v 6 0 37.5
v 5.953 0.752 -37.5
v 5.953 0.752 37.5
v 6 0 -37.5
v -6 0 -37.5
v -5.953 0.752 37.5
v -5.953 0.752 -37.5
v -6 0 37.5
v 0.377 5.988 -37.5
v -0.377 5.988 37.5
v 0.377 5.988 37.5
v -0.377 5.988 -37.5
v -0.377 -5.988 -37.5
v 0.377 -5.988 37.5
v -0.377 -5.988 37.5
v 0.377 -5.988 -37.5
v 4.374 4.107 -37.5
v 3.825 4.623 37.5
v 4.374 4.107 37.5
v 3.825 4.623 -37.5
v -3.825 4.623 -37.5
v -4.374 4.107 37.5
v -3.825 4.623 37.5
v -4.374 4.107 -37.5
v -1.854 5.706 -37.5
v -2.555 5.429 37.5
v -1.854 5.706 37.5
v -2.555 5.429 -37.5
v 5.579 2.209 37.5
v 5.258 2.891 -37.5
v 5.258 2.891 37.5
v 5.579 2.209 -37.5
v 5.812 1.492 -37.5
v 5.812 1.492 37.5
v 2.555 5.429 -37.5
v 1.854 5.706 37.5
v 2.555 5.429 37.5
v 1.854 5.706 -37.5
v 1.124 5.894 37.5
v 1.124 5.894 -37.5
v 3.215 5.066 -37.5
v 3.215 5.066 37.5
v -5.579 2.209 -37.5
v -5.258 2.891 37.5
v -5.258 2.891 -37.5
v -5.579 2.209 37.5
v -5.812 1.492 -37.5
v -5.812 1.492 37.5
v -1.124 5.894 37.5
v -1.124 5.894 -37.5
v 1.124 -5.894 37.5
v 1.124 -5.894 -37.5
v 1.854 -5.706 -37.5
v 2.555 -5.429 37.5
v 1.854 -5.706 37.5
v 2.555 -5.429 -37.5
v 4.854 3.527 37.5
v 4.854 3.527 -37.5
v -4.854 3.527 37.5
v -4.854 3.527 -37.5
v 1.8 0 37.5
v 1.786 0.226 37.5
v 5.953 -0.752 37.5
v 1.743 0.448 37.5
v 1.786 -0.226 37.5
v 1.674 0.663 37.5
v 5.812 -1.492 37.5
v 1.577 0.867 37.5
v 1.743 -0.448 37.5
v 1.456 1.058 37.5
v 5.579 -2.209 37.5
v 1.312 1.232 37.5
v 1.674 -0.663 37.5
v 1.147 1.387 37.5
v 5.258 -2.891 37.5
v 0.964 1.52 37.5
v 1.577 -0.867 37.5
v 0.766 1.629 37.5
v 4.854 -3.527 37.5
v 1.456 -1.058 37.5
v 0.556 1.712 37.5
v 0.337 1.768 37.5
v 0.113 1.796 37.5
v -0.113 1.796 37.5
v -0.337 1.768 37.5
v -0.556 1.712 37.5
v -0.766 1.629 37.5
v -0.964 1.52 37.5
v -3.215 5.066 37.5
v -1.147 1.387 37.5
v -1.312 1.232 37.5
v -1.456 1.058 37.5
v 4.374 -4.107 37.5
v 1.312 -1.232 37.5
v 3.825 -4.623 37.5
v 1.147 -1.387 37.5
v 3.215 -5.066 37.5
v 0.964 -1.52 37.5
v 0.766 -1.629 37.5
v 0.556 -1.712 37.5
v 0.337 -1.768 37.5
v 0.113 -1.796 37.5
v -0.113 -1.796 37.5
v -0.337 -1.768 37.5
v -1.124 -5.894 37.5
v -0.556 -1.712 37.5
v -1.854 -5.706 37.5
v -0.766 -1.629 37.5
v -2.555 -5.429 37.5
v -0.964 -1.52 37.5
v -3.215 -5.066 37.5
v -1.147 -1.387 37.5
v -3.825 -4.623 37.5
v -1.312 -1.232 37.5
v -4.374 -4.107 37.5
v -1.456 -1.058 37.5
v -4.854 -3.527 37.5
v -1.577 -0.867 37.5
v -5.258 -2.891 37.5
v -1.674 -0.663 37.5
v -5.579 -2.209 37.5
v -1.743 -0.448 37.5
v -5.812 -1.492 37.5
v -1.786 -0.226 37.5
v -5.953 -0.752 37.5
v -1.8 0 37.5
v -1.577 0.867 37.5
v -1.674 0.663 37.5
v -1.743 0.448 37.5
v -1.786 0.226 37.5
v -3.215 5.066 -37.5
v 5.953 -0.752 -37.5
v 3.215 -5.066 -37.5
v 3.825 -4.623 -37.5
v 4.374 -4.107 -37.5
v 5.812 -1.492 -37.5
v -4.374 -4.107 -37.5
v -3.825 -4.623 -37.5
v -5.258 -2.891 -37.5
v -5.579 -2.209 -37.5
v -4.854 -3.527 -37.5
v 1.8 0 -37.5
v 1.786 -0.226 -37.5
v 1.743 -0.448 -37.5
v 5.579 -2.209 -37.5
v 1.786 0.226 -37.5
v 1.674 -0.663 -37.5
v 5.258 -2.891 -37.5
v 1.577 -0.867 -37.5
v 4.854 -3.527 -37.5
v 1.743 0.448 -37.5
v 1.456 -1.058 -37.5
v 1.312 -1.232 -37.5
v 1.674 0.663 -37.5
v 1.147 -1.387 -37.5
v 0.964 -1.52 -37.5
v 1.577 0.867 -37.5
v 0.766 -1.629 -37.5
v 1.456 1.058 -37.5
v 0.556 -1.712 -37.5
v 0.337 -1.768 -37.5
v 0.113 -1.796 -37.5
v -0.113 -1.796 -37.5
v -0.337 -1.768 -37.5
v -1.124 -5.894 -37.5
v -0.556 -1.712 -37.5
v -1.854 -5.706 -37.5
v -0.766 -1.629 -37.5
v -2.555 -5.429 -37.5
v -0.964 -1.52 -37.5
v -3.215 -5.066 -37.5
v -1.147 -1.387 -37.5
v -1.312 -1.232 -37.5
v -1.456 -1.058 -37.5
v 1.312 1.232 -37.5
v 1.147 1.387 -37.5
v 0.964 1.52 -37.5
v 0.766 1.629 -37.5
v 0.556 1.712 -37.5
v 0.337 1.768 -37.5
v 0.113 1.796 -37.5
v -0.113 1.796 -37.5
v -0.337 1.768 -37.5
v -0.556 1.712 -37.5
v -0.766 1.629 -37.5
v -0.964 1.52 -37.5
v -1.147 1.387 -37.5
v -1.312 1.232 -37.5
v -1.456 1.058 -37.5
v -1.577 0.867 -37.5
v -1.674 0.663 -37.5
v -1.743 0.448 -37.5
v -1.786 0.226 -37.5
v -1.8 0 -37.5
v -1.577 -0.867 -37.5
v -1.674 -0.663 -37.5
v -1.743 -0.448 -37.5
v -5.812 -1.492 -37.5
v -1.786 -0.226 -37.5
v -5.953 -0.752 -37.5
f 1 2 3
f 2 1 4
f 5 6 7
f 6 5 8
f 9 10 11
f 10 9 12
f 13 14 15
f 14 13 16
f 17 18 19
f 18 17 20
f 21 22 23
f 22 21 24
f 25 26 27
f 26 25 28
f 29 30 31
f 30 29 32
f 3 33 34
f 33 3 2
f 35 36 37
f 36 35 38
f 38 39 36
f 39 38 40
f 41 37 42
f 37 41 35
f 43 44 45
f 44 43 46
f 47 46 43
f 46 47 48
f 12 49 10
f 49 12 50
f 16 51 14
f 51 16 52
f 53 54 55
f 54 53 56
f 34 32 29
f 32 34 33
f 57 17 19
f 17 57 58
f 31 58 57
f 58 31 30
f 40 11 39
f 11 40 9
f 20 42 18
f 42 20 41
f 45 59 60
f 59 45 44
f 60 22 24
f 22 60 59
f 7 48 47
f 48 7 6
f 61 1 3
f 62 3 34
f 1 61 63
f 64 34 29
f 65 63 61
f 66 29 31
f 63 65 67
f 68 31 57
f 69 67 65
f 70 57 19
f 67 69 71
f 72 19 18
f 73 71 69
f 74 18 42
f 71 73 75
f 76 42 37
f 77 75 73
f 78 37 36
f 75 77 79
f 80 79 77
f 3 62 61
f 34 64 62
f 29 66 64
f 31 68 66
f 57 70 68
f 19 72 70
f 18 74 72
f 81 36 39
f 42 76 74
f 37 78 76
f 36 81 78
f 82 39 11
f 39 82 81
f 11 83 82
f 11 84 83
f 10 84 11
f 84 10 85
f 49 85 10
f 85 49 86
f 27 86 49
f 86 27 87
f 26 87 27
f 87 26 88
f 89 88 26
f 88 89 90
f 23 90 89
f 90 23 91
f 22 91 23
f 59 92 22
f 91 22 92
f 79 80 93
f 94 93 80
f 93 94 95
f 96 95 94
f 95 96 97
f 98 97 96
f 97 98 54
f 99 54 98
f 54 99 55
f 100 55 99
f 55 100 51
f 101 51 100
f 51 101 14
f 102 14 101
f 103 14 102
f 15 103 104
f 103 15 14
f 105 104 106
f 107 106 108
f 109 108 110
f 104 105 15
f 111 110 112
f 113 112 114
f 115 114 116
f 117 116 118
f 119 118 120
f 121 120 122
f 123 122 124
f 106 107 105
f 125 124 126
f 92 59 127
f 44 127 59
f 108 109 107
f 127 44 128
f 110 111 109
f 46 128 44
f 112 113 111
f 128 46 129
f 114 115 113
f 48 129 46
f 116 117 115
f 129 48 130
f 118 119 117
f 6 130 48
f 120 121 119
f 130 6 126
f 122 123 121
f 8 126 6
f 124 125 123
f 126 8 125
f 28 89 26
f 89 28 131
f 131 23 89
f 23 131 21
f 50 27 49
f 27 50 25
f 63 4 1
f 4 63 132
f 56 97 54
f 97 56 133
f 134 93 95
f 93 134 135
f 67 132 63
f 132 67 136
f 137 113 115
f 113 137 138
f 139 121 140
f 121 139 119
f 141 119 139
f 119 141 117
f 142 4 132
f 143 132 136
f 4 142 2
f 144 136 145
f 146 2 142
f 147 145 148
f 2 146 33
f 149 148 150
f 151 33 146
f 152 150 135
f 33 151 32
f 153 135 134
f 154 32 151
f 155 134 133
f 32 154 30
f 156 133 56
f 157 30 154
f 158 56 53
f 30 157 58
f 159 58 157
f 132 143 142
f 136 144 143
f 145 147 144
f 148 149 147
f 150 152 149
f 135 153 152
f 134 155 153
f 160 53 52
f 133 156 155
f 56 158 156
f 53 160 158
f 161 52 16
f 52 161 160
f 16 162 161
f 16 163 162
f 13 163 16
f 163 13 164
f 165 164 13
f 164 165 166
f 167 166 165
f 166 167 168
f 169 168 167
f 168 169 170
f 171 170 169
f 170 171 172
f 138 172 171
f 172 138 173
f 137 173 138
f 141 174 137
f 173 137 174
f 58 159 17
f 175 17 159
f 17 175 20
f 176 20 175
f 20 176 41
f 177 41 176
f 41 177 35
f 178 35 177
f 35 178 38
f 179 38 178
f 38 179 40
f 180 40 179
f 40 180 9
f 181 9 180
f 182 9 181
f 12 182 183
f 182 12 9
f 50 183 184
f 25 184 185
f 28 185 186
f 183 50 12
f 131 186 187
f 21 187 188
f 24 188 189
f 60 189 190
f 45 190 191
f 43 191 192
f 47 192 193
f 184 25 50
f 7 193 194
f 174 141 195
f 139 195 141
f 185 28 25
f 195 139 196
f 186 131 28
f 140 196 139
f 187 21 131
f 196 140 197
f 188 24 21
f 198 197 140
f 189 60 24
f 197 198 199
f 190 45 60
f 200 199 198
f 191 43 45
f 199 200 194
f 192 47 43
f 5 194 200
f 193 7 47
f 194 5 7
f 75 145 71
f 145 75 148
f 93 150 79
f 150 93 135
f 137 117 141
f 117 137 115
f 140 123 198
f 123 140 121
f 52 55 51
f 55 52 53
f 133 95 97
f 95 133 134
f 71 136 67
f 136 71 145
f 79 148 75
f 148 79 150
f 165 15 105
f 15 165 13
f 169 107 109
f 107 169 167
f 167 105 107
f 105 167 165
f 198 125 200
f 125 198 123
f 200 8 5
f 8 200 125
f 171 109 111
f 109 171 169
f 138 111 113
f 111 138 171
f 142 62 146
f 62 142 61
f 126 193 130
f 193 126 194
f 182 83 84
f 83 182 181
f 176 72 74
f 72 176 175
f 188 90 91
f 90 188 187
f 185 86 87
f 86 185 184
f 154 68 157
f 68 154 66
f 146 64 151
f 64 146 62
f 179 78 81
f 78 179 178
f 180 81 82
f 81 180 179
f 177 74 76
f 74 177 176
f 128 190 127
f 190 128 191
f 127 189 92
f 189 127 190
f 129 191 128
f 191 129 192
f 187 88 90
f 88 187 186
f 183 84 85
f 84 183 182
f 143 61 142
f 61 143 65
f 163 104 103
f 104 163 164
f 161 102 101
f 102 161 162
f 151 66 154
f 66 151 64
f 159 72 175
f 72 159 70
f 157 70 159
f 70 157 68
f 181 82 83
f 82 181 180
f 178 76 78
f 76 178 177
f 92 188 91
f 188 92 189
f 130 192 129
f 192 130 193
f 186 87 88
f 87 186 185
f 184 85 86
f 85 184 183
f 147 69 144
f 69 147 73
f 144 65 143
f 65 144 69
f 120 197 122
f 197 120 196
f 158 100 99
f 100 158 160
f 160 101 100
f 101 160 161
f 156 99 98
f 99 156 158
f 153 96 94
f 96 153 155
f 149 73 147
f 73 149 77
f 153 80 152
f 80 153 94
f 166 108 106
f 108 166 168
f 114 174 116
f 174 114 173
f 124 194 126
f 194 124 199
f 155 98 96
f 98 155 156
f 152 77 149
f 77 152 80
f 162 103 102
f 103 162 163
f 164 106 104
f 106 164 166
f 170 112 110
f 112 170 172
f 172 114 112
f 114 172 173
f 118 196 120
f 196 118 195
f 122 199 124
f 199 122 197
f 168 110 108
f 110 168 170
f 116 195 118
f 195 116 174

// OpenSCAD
$fn = 50;


difference() {
	union() {
		translate(v = [0, 0, -37.5000000000]) {
			cylinder(h = 75, r = 6.0000000000);
		}
	}
	union() {
		translate(v = [0, 0, -100.0000000000]) {
			cylinder(h = 200, r = 1.8000000000);
		}
	}
}
